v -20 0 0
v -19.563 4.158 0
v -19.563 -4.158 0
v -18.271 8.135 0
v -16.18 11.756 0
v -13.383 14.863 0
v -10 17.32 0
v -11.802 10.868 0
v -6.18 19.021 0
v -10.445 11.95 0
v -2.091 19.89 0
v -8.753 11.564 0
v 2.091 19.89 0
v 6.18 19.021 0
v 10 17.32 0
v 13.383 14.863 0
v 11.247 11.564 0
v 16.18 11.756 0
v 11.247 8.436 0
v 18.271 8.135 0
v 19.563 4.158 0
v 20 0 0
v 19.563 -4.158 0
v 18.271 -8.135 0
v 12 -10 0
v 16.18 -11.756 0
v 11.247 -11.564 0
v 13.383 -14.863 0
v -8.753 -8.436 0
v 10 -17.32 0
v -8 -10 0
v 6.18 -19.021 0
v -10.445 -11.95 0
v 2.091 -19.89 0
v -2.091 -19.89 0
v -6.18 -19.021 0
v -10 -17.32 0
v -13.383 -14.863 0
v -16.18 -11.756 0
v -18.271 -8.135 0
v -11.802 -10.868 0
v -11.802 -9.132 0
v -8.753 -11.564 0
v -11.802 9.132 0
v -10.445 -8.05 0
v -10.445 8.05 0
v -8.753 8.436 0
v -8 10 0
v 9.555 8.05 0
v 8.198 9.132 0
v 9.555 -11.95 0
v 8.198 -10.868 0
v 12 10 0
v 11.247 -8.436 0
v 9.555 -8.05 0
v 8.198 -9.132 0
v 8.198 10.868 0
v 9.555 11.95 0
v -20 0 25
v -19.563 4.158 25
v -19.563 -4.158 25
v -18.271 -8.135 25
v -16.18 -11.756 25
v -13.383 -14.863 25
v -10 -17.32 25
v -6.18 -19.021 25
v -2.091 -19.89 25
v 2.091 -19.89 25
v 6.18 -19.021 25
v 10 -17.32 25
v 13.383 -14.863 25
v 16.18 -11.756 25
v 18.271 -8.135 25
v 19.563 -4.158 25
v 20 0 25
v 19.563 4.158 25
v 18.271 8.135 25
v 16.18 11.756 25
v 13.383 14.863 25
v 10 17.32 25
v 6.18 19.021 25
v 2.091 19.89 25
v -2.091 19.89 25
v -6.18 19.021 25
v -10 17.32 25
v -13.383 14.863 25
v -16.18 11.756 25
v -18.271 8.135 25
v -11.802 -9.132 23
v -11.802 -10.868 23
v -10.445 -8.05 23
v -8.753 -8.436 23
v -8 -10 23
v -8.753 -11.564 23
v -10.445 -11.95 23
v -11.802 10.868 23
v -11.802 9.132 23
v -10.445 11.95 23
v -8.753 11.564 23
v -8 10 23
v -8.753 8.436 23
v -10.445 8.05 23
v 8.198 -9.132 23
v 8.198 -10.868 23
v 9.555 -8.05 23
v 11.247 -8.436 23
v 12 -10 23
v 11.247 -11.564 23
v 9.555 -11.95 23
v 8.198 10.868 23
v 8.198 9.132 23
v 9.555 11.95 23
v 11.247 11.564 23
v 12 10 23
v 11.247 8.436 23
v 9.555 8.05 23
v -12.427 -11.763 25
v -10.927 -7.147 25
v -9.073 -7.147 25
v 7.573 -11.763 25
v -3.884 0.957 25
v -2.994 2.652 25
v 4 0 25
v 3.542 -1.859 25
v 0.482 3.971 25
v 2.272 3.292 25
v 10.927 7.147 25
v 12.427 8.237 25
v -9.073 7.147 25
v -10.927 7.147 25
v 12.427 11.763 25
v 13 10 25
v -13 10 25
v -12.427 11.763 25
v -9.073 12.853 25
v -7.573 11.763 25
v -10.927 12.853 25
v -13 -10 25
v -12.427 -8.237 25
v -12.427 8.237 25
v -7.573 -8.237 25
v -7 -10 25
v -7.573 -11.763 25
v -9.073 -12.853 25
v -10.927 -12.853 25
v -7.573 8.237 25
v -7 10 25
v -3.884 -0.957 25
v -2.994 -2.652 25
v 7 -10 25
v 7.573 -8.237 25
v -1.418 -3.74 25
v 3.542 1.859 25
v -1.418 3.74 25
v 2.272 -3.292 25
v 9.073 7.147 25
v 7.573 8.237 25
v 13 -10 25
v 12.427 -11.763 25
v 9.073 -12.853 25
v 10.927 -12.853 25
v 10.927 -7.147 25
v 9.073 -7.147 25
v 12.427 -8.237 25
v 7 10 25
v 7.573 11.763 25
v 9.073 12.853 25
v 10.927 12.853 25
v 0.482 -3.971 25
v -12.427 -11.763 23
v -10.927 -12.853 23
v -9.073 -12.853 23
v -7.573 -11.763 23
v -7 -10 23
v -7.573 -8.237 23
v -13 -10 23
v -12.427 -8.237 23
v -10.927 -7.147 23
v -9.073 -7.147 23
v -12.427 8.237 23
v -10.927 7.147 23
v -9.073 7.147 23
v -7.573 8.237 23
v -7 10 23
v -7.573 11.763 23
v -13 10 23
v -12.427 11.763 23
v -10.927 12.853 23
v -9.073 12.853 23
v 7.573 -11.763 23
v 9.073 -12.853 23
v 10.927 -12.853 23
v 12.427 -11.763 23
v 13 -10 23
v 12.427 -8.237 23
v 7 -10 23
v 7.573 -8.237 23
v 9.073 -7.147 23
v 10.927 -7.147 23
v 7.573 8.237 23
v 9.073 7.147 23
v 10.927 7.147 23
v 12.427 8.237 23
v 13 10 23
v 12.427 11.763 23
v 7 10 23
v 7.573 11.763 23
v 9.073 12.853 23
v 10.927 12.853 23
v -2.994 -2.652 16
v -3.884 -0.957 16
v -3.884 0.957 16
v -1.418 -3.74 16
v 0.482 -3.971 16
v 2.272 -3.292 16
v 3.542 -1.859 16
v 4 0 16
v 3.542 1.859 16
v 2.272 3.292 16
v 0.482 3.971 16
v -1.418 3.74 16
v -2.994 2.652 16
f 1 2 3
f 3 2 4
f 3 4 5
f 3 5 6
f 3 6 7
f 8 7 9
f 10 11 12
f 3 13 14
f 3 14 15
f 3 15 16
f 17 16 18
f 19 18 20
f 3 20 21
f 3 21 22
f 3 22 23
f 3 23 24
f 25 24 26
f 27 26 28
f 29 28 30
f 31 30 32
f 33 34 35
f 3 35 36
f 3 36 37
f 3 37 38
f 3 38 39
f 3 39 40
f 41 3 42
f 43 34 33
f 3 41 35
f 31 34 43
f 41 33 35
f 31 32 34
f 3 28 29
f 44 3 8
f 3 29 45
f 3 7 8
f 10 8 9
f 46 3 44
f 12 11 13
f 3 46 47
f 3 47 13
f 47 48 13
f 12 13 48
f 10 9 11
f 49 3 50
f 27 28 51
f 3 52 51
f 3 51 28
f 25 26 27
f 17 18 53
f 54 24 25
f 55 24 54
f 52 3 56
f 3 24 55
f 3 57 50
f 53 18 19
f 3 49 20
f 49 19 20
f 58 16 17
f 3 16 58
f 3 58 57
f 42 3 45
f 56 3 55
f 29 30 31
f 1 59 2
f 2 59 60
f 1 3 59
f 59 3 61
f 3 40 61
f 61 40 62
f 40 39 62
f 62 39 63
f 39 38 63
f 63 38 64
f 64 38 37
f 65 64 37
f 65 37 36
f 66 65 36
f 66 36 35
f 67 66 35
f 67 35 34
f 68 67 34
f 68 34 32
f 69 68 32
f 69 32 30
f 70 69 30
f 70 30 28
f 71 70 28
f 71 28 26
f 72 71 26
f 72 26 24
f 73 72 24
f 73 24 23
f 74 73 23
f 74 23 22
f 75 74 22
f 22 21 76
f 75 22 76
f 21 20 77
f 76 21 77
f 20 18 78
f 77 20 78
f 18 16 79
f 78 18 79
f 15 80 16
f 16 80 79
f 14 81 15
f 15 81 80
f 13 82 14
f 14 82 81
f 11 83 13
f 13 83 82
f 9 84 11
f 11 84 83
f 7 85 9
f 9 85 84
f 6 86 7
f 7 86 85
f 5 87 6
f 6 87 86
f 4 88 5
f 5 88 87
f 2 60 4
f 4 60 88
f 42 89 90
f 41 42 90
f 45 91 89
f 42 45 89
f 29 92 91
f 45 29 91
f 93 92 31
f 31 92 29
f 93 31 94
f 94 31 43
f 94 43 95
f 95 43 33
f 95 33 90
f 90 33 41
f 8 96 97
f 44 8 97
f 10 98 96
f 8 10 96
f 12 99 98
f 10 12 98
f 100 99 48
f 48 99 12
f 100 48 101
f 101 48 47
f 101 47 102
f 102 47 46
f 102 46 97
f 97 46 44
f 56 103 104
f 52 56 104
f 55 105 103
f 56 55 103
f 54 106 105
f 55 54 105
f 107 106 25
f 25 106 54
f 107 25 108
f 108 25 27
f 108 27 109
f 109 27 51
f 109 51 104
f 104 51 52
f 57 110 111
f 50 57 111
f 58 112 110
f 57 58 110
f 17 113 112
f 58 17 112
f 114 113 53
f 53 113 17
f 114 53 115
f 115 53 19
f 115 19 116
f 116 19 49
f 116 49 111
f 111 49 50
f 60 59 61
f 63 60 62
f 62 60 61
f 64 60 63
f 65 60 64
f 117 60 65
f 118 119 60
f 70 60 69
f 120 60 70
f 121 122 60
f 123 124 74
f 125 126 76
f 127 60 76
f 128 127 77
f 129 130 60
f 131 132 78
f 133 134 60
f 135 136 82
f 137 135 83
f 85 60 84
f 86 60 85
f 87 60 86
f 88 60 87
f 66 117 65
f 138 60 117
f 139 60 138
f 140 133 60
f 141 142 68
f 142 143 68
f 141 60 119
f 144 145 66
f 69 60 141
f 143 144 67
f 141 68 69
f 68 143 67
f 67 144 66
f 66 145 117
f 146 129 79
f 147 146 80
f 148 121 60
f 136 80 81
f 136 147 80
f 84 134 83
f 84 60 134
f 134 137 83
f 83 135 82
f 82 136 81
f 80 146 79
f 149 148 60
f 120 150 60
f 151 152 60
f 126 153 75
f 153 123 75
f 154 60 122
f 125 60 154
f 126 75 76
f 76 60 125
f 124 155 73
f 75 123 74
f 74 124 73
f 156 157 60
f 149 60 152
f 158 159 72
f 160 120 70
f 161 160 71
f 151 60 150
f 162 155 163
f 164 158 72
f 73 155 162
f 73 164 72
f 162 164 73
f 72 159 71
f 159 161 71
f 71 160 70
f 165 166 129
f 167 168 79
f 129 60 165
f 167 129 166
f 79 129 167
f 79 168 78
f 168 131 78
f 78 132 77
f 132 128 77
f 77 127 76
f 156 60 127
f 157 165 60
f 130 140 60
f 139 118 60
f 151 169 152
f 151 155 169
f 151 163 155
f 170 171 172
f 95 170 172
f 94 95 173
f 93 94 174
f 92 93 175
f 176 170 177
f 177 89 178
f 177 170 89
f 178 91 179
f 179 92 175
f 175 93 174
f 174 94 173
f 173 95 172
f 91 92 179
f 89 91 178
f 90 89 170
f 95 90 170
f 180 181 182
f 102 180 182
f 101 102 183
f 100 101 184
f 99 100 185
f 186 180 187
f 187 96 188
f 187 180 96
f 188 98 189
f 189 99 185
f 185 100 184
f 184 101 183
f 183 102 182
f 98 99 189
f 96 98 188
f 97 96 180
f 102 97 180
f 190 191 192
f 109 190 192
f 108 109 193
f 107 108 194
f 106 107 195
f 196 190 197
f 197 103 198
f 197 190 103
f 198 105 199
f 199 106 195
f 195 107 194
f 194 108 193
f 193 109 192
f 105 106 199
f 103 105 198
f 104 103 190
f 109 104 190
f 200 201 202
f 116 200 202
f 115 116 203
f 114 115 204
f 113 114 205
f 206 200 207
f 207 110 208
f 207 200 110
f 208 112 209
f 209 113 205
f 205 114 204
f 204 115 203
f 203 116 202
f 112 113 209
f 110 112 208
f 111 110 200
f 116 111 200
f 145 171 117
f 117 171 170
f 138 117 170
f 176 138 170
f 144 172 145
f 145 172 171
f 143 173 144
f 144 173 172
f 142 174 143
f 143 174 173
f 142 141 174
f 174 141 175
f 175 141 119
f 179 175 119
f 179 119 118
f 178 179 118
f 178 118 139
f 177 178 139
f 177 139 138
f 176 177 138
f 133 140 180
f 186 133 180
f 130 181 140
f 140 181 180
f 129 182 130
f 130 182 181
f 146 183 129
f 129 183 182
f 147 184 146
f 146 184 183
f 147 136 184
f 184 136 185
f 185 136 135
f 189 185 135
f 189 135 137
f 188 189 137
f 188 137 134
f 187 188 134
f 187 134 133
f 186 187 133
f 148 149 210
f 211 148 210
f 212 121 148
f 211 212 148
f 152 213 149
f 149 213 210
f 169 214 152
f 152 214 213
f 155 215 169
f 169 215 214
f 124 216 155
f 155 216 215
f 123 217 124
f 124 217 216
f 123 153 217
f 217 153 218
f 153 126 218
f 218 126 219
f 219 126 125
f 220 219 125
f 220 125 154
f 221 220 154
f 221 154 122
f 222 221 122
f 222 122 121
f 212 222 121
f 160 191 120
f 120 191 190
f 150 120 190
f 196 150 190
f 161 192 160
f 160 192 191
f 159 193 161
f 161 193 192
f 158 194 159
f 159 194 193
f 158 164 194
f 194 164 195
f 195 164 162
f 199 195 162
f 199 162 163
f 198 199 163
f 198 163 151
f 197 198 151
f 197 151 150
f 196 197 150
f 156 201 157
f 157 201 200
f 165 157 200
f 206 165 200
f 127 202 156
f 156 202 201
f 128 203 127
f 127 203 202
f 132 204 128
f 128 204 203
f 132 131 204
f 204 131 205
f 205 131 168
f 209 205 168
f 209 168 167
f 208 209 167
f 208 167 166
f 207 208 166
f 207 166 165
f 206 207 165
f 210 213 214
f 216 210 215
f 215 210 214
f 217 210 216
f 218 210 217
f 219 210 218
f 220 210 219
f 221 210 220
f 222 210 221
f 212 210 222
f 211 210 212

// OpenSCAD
//Tornillos
rt=2;
//Varilla
rv=4;
difference(){
cylinder(h=25, r=20);
union(){
translate([0,0,16])
cylinder(h=10, r=rv);
translate([10,10,-5])
cylinder(h=35, r=rt);
translate([10,-10,-5])
cylinder(h=35, r=rt);
translate([-10,10,-5])
cylinder(h=35, r=rt);
translate([-10,-10,-5])
cylinder(h=35, r=rt);
translate([10,10,23])
cylinder(h=3, r=rt+1);
translate([10,-10,23])
cylinder(h=3, r=rt+1);
translate([-10,10,23])
cylinder(h=3, r=rt+1);
translate([-10,-10,23])
cylinder(h=3, r=rt+1);
}
}
